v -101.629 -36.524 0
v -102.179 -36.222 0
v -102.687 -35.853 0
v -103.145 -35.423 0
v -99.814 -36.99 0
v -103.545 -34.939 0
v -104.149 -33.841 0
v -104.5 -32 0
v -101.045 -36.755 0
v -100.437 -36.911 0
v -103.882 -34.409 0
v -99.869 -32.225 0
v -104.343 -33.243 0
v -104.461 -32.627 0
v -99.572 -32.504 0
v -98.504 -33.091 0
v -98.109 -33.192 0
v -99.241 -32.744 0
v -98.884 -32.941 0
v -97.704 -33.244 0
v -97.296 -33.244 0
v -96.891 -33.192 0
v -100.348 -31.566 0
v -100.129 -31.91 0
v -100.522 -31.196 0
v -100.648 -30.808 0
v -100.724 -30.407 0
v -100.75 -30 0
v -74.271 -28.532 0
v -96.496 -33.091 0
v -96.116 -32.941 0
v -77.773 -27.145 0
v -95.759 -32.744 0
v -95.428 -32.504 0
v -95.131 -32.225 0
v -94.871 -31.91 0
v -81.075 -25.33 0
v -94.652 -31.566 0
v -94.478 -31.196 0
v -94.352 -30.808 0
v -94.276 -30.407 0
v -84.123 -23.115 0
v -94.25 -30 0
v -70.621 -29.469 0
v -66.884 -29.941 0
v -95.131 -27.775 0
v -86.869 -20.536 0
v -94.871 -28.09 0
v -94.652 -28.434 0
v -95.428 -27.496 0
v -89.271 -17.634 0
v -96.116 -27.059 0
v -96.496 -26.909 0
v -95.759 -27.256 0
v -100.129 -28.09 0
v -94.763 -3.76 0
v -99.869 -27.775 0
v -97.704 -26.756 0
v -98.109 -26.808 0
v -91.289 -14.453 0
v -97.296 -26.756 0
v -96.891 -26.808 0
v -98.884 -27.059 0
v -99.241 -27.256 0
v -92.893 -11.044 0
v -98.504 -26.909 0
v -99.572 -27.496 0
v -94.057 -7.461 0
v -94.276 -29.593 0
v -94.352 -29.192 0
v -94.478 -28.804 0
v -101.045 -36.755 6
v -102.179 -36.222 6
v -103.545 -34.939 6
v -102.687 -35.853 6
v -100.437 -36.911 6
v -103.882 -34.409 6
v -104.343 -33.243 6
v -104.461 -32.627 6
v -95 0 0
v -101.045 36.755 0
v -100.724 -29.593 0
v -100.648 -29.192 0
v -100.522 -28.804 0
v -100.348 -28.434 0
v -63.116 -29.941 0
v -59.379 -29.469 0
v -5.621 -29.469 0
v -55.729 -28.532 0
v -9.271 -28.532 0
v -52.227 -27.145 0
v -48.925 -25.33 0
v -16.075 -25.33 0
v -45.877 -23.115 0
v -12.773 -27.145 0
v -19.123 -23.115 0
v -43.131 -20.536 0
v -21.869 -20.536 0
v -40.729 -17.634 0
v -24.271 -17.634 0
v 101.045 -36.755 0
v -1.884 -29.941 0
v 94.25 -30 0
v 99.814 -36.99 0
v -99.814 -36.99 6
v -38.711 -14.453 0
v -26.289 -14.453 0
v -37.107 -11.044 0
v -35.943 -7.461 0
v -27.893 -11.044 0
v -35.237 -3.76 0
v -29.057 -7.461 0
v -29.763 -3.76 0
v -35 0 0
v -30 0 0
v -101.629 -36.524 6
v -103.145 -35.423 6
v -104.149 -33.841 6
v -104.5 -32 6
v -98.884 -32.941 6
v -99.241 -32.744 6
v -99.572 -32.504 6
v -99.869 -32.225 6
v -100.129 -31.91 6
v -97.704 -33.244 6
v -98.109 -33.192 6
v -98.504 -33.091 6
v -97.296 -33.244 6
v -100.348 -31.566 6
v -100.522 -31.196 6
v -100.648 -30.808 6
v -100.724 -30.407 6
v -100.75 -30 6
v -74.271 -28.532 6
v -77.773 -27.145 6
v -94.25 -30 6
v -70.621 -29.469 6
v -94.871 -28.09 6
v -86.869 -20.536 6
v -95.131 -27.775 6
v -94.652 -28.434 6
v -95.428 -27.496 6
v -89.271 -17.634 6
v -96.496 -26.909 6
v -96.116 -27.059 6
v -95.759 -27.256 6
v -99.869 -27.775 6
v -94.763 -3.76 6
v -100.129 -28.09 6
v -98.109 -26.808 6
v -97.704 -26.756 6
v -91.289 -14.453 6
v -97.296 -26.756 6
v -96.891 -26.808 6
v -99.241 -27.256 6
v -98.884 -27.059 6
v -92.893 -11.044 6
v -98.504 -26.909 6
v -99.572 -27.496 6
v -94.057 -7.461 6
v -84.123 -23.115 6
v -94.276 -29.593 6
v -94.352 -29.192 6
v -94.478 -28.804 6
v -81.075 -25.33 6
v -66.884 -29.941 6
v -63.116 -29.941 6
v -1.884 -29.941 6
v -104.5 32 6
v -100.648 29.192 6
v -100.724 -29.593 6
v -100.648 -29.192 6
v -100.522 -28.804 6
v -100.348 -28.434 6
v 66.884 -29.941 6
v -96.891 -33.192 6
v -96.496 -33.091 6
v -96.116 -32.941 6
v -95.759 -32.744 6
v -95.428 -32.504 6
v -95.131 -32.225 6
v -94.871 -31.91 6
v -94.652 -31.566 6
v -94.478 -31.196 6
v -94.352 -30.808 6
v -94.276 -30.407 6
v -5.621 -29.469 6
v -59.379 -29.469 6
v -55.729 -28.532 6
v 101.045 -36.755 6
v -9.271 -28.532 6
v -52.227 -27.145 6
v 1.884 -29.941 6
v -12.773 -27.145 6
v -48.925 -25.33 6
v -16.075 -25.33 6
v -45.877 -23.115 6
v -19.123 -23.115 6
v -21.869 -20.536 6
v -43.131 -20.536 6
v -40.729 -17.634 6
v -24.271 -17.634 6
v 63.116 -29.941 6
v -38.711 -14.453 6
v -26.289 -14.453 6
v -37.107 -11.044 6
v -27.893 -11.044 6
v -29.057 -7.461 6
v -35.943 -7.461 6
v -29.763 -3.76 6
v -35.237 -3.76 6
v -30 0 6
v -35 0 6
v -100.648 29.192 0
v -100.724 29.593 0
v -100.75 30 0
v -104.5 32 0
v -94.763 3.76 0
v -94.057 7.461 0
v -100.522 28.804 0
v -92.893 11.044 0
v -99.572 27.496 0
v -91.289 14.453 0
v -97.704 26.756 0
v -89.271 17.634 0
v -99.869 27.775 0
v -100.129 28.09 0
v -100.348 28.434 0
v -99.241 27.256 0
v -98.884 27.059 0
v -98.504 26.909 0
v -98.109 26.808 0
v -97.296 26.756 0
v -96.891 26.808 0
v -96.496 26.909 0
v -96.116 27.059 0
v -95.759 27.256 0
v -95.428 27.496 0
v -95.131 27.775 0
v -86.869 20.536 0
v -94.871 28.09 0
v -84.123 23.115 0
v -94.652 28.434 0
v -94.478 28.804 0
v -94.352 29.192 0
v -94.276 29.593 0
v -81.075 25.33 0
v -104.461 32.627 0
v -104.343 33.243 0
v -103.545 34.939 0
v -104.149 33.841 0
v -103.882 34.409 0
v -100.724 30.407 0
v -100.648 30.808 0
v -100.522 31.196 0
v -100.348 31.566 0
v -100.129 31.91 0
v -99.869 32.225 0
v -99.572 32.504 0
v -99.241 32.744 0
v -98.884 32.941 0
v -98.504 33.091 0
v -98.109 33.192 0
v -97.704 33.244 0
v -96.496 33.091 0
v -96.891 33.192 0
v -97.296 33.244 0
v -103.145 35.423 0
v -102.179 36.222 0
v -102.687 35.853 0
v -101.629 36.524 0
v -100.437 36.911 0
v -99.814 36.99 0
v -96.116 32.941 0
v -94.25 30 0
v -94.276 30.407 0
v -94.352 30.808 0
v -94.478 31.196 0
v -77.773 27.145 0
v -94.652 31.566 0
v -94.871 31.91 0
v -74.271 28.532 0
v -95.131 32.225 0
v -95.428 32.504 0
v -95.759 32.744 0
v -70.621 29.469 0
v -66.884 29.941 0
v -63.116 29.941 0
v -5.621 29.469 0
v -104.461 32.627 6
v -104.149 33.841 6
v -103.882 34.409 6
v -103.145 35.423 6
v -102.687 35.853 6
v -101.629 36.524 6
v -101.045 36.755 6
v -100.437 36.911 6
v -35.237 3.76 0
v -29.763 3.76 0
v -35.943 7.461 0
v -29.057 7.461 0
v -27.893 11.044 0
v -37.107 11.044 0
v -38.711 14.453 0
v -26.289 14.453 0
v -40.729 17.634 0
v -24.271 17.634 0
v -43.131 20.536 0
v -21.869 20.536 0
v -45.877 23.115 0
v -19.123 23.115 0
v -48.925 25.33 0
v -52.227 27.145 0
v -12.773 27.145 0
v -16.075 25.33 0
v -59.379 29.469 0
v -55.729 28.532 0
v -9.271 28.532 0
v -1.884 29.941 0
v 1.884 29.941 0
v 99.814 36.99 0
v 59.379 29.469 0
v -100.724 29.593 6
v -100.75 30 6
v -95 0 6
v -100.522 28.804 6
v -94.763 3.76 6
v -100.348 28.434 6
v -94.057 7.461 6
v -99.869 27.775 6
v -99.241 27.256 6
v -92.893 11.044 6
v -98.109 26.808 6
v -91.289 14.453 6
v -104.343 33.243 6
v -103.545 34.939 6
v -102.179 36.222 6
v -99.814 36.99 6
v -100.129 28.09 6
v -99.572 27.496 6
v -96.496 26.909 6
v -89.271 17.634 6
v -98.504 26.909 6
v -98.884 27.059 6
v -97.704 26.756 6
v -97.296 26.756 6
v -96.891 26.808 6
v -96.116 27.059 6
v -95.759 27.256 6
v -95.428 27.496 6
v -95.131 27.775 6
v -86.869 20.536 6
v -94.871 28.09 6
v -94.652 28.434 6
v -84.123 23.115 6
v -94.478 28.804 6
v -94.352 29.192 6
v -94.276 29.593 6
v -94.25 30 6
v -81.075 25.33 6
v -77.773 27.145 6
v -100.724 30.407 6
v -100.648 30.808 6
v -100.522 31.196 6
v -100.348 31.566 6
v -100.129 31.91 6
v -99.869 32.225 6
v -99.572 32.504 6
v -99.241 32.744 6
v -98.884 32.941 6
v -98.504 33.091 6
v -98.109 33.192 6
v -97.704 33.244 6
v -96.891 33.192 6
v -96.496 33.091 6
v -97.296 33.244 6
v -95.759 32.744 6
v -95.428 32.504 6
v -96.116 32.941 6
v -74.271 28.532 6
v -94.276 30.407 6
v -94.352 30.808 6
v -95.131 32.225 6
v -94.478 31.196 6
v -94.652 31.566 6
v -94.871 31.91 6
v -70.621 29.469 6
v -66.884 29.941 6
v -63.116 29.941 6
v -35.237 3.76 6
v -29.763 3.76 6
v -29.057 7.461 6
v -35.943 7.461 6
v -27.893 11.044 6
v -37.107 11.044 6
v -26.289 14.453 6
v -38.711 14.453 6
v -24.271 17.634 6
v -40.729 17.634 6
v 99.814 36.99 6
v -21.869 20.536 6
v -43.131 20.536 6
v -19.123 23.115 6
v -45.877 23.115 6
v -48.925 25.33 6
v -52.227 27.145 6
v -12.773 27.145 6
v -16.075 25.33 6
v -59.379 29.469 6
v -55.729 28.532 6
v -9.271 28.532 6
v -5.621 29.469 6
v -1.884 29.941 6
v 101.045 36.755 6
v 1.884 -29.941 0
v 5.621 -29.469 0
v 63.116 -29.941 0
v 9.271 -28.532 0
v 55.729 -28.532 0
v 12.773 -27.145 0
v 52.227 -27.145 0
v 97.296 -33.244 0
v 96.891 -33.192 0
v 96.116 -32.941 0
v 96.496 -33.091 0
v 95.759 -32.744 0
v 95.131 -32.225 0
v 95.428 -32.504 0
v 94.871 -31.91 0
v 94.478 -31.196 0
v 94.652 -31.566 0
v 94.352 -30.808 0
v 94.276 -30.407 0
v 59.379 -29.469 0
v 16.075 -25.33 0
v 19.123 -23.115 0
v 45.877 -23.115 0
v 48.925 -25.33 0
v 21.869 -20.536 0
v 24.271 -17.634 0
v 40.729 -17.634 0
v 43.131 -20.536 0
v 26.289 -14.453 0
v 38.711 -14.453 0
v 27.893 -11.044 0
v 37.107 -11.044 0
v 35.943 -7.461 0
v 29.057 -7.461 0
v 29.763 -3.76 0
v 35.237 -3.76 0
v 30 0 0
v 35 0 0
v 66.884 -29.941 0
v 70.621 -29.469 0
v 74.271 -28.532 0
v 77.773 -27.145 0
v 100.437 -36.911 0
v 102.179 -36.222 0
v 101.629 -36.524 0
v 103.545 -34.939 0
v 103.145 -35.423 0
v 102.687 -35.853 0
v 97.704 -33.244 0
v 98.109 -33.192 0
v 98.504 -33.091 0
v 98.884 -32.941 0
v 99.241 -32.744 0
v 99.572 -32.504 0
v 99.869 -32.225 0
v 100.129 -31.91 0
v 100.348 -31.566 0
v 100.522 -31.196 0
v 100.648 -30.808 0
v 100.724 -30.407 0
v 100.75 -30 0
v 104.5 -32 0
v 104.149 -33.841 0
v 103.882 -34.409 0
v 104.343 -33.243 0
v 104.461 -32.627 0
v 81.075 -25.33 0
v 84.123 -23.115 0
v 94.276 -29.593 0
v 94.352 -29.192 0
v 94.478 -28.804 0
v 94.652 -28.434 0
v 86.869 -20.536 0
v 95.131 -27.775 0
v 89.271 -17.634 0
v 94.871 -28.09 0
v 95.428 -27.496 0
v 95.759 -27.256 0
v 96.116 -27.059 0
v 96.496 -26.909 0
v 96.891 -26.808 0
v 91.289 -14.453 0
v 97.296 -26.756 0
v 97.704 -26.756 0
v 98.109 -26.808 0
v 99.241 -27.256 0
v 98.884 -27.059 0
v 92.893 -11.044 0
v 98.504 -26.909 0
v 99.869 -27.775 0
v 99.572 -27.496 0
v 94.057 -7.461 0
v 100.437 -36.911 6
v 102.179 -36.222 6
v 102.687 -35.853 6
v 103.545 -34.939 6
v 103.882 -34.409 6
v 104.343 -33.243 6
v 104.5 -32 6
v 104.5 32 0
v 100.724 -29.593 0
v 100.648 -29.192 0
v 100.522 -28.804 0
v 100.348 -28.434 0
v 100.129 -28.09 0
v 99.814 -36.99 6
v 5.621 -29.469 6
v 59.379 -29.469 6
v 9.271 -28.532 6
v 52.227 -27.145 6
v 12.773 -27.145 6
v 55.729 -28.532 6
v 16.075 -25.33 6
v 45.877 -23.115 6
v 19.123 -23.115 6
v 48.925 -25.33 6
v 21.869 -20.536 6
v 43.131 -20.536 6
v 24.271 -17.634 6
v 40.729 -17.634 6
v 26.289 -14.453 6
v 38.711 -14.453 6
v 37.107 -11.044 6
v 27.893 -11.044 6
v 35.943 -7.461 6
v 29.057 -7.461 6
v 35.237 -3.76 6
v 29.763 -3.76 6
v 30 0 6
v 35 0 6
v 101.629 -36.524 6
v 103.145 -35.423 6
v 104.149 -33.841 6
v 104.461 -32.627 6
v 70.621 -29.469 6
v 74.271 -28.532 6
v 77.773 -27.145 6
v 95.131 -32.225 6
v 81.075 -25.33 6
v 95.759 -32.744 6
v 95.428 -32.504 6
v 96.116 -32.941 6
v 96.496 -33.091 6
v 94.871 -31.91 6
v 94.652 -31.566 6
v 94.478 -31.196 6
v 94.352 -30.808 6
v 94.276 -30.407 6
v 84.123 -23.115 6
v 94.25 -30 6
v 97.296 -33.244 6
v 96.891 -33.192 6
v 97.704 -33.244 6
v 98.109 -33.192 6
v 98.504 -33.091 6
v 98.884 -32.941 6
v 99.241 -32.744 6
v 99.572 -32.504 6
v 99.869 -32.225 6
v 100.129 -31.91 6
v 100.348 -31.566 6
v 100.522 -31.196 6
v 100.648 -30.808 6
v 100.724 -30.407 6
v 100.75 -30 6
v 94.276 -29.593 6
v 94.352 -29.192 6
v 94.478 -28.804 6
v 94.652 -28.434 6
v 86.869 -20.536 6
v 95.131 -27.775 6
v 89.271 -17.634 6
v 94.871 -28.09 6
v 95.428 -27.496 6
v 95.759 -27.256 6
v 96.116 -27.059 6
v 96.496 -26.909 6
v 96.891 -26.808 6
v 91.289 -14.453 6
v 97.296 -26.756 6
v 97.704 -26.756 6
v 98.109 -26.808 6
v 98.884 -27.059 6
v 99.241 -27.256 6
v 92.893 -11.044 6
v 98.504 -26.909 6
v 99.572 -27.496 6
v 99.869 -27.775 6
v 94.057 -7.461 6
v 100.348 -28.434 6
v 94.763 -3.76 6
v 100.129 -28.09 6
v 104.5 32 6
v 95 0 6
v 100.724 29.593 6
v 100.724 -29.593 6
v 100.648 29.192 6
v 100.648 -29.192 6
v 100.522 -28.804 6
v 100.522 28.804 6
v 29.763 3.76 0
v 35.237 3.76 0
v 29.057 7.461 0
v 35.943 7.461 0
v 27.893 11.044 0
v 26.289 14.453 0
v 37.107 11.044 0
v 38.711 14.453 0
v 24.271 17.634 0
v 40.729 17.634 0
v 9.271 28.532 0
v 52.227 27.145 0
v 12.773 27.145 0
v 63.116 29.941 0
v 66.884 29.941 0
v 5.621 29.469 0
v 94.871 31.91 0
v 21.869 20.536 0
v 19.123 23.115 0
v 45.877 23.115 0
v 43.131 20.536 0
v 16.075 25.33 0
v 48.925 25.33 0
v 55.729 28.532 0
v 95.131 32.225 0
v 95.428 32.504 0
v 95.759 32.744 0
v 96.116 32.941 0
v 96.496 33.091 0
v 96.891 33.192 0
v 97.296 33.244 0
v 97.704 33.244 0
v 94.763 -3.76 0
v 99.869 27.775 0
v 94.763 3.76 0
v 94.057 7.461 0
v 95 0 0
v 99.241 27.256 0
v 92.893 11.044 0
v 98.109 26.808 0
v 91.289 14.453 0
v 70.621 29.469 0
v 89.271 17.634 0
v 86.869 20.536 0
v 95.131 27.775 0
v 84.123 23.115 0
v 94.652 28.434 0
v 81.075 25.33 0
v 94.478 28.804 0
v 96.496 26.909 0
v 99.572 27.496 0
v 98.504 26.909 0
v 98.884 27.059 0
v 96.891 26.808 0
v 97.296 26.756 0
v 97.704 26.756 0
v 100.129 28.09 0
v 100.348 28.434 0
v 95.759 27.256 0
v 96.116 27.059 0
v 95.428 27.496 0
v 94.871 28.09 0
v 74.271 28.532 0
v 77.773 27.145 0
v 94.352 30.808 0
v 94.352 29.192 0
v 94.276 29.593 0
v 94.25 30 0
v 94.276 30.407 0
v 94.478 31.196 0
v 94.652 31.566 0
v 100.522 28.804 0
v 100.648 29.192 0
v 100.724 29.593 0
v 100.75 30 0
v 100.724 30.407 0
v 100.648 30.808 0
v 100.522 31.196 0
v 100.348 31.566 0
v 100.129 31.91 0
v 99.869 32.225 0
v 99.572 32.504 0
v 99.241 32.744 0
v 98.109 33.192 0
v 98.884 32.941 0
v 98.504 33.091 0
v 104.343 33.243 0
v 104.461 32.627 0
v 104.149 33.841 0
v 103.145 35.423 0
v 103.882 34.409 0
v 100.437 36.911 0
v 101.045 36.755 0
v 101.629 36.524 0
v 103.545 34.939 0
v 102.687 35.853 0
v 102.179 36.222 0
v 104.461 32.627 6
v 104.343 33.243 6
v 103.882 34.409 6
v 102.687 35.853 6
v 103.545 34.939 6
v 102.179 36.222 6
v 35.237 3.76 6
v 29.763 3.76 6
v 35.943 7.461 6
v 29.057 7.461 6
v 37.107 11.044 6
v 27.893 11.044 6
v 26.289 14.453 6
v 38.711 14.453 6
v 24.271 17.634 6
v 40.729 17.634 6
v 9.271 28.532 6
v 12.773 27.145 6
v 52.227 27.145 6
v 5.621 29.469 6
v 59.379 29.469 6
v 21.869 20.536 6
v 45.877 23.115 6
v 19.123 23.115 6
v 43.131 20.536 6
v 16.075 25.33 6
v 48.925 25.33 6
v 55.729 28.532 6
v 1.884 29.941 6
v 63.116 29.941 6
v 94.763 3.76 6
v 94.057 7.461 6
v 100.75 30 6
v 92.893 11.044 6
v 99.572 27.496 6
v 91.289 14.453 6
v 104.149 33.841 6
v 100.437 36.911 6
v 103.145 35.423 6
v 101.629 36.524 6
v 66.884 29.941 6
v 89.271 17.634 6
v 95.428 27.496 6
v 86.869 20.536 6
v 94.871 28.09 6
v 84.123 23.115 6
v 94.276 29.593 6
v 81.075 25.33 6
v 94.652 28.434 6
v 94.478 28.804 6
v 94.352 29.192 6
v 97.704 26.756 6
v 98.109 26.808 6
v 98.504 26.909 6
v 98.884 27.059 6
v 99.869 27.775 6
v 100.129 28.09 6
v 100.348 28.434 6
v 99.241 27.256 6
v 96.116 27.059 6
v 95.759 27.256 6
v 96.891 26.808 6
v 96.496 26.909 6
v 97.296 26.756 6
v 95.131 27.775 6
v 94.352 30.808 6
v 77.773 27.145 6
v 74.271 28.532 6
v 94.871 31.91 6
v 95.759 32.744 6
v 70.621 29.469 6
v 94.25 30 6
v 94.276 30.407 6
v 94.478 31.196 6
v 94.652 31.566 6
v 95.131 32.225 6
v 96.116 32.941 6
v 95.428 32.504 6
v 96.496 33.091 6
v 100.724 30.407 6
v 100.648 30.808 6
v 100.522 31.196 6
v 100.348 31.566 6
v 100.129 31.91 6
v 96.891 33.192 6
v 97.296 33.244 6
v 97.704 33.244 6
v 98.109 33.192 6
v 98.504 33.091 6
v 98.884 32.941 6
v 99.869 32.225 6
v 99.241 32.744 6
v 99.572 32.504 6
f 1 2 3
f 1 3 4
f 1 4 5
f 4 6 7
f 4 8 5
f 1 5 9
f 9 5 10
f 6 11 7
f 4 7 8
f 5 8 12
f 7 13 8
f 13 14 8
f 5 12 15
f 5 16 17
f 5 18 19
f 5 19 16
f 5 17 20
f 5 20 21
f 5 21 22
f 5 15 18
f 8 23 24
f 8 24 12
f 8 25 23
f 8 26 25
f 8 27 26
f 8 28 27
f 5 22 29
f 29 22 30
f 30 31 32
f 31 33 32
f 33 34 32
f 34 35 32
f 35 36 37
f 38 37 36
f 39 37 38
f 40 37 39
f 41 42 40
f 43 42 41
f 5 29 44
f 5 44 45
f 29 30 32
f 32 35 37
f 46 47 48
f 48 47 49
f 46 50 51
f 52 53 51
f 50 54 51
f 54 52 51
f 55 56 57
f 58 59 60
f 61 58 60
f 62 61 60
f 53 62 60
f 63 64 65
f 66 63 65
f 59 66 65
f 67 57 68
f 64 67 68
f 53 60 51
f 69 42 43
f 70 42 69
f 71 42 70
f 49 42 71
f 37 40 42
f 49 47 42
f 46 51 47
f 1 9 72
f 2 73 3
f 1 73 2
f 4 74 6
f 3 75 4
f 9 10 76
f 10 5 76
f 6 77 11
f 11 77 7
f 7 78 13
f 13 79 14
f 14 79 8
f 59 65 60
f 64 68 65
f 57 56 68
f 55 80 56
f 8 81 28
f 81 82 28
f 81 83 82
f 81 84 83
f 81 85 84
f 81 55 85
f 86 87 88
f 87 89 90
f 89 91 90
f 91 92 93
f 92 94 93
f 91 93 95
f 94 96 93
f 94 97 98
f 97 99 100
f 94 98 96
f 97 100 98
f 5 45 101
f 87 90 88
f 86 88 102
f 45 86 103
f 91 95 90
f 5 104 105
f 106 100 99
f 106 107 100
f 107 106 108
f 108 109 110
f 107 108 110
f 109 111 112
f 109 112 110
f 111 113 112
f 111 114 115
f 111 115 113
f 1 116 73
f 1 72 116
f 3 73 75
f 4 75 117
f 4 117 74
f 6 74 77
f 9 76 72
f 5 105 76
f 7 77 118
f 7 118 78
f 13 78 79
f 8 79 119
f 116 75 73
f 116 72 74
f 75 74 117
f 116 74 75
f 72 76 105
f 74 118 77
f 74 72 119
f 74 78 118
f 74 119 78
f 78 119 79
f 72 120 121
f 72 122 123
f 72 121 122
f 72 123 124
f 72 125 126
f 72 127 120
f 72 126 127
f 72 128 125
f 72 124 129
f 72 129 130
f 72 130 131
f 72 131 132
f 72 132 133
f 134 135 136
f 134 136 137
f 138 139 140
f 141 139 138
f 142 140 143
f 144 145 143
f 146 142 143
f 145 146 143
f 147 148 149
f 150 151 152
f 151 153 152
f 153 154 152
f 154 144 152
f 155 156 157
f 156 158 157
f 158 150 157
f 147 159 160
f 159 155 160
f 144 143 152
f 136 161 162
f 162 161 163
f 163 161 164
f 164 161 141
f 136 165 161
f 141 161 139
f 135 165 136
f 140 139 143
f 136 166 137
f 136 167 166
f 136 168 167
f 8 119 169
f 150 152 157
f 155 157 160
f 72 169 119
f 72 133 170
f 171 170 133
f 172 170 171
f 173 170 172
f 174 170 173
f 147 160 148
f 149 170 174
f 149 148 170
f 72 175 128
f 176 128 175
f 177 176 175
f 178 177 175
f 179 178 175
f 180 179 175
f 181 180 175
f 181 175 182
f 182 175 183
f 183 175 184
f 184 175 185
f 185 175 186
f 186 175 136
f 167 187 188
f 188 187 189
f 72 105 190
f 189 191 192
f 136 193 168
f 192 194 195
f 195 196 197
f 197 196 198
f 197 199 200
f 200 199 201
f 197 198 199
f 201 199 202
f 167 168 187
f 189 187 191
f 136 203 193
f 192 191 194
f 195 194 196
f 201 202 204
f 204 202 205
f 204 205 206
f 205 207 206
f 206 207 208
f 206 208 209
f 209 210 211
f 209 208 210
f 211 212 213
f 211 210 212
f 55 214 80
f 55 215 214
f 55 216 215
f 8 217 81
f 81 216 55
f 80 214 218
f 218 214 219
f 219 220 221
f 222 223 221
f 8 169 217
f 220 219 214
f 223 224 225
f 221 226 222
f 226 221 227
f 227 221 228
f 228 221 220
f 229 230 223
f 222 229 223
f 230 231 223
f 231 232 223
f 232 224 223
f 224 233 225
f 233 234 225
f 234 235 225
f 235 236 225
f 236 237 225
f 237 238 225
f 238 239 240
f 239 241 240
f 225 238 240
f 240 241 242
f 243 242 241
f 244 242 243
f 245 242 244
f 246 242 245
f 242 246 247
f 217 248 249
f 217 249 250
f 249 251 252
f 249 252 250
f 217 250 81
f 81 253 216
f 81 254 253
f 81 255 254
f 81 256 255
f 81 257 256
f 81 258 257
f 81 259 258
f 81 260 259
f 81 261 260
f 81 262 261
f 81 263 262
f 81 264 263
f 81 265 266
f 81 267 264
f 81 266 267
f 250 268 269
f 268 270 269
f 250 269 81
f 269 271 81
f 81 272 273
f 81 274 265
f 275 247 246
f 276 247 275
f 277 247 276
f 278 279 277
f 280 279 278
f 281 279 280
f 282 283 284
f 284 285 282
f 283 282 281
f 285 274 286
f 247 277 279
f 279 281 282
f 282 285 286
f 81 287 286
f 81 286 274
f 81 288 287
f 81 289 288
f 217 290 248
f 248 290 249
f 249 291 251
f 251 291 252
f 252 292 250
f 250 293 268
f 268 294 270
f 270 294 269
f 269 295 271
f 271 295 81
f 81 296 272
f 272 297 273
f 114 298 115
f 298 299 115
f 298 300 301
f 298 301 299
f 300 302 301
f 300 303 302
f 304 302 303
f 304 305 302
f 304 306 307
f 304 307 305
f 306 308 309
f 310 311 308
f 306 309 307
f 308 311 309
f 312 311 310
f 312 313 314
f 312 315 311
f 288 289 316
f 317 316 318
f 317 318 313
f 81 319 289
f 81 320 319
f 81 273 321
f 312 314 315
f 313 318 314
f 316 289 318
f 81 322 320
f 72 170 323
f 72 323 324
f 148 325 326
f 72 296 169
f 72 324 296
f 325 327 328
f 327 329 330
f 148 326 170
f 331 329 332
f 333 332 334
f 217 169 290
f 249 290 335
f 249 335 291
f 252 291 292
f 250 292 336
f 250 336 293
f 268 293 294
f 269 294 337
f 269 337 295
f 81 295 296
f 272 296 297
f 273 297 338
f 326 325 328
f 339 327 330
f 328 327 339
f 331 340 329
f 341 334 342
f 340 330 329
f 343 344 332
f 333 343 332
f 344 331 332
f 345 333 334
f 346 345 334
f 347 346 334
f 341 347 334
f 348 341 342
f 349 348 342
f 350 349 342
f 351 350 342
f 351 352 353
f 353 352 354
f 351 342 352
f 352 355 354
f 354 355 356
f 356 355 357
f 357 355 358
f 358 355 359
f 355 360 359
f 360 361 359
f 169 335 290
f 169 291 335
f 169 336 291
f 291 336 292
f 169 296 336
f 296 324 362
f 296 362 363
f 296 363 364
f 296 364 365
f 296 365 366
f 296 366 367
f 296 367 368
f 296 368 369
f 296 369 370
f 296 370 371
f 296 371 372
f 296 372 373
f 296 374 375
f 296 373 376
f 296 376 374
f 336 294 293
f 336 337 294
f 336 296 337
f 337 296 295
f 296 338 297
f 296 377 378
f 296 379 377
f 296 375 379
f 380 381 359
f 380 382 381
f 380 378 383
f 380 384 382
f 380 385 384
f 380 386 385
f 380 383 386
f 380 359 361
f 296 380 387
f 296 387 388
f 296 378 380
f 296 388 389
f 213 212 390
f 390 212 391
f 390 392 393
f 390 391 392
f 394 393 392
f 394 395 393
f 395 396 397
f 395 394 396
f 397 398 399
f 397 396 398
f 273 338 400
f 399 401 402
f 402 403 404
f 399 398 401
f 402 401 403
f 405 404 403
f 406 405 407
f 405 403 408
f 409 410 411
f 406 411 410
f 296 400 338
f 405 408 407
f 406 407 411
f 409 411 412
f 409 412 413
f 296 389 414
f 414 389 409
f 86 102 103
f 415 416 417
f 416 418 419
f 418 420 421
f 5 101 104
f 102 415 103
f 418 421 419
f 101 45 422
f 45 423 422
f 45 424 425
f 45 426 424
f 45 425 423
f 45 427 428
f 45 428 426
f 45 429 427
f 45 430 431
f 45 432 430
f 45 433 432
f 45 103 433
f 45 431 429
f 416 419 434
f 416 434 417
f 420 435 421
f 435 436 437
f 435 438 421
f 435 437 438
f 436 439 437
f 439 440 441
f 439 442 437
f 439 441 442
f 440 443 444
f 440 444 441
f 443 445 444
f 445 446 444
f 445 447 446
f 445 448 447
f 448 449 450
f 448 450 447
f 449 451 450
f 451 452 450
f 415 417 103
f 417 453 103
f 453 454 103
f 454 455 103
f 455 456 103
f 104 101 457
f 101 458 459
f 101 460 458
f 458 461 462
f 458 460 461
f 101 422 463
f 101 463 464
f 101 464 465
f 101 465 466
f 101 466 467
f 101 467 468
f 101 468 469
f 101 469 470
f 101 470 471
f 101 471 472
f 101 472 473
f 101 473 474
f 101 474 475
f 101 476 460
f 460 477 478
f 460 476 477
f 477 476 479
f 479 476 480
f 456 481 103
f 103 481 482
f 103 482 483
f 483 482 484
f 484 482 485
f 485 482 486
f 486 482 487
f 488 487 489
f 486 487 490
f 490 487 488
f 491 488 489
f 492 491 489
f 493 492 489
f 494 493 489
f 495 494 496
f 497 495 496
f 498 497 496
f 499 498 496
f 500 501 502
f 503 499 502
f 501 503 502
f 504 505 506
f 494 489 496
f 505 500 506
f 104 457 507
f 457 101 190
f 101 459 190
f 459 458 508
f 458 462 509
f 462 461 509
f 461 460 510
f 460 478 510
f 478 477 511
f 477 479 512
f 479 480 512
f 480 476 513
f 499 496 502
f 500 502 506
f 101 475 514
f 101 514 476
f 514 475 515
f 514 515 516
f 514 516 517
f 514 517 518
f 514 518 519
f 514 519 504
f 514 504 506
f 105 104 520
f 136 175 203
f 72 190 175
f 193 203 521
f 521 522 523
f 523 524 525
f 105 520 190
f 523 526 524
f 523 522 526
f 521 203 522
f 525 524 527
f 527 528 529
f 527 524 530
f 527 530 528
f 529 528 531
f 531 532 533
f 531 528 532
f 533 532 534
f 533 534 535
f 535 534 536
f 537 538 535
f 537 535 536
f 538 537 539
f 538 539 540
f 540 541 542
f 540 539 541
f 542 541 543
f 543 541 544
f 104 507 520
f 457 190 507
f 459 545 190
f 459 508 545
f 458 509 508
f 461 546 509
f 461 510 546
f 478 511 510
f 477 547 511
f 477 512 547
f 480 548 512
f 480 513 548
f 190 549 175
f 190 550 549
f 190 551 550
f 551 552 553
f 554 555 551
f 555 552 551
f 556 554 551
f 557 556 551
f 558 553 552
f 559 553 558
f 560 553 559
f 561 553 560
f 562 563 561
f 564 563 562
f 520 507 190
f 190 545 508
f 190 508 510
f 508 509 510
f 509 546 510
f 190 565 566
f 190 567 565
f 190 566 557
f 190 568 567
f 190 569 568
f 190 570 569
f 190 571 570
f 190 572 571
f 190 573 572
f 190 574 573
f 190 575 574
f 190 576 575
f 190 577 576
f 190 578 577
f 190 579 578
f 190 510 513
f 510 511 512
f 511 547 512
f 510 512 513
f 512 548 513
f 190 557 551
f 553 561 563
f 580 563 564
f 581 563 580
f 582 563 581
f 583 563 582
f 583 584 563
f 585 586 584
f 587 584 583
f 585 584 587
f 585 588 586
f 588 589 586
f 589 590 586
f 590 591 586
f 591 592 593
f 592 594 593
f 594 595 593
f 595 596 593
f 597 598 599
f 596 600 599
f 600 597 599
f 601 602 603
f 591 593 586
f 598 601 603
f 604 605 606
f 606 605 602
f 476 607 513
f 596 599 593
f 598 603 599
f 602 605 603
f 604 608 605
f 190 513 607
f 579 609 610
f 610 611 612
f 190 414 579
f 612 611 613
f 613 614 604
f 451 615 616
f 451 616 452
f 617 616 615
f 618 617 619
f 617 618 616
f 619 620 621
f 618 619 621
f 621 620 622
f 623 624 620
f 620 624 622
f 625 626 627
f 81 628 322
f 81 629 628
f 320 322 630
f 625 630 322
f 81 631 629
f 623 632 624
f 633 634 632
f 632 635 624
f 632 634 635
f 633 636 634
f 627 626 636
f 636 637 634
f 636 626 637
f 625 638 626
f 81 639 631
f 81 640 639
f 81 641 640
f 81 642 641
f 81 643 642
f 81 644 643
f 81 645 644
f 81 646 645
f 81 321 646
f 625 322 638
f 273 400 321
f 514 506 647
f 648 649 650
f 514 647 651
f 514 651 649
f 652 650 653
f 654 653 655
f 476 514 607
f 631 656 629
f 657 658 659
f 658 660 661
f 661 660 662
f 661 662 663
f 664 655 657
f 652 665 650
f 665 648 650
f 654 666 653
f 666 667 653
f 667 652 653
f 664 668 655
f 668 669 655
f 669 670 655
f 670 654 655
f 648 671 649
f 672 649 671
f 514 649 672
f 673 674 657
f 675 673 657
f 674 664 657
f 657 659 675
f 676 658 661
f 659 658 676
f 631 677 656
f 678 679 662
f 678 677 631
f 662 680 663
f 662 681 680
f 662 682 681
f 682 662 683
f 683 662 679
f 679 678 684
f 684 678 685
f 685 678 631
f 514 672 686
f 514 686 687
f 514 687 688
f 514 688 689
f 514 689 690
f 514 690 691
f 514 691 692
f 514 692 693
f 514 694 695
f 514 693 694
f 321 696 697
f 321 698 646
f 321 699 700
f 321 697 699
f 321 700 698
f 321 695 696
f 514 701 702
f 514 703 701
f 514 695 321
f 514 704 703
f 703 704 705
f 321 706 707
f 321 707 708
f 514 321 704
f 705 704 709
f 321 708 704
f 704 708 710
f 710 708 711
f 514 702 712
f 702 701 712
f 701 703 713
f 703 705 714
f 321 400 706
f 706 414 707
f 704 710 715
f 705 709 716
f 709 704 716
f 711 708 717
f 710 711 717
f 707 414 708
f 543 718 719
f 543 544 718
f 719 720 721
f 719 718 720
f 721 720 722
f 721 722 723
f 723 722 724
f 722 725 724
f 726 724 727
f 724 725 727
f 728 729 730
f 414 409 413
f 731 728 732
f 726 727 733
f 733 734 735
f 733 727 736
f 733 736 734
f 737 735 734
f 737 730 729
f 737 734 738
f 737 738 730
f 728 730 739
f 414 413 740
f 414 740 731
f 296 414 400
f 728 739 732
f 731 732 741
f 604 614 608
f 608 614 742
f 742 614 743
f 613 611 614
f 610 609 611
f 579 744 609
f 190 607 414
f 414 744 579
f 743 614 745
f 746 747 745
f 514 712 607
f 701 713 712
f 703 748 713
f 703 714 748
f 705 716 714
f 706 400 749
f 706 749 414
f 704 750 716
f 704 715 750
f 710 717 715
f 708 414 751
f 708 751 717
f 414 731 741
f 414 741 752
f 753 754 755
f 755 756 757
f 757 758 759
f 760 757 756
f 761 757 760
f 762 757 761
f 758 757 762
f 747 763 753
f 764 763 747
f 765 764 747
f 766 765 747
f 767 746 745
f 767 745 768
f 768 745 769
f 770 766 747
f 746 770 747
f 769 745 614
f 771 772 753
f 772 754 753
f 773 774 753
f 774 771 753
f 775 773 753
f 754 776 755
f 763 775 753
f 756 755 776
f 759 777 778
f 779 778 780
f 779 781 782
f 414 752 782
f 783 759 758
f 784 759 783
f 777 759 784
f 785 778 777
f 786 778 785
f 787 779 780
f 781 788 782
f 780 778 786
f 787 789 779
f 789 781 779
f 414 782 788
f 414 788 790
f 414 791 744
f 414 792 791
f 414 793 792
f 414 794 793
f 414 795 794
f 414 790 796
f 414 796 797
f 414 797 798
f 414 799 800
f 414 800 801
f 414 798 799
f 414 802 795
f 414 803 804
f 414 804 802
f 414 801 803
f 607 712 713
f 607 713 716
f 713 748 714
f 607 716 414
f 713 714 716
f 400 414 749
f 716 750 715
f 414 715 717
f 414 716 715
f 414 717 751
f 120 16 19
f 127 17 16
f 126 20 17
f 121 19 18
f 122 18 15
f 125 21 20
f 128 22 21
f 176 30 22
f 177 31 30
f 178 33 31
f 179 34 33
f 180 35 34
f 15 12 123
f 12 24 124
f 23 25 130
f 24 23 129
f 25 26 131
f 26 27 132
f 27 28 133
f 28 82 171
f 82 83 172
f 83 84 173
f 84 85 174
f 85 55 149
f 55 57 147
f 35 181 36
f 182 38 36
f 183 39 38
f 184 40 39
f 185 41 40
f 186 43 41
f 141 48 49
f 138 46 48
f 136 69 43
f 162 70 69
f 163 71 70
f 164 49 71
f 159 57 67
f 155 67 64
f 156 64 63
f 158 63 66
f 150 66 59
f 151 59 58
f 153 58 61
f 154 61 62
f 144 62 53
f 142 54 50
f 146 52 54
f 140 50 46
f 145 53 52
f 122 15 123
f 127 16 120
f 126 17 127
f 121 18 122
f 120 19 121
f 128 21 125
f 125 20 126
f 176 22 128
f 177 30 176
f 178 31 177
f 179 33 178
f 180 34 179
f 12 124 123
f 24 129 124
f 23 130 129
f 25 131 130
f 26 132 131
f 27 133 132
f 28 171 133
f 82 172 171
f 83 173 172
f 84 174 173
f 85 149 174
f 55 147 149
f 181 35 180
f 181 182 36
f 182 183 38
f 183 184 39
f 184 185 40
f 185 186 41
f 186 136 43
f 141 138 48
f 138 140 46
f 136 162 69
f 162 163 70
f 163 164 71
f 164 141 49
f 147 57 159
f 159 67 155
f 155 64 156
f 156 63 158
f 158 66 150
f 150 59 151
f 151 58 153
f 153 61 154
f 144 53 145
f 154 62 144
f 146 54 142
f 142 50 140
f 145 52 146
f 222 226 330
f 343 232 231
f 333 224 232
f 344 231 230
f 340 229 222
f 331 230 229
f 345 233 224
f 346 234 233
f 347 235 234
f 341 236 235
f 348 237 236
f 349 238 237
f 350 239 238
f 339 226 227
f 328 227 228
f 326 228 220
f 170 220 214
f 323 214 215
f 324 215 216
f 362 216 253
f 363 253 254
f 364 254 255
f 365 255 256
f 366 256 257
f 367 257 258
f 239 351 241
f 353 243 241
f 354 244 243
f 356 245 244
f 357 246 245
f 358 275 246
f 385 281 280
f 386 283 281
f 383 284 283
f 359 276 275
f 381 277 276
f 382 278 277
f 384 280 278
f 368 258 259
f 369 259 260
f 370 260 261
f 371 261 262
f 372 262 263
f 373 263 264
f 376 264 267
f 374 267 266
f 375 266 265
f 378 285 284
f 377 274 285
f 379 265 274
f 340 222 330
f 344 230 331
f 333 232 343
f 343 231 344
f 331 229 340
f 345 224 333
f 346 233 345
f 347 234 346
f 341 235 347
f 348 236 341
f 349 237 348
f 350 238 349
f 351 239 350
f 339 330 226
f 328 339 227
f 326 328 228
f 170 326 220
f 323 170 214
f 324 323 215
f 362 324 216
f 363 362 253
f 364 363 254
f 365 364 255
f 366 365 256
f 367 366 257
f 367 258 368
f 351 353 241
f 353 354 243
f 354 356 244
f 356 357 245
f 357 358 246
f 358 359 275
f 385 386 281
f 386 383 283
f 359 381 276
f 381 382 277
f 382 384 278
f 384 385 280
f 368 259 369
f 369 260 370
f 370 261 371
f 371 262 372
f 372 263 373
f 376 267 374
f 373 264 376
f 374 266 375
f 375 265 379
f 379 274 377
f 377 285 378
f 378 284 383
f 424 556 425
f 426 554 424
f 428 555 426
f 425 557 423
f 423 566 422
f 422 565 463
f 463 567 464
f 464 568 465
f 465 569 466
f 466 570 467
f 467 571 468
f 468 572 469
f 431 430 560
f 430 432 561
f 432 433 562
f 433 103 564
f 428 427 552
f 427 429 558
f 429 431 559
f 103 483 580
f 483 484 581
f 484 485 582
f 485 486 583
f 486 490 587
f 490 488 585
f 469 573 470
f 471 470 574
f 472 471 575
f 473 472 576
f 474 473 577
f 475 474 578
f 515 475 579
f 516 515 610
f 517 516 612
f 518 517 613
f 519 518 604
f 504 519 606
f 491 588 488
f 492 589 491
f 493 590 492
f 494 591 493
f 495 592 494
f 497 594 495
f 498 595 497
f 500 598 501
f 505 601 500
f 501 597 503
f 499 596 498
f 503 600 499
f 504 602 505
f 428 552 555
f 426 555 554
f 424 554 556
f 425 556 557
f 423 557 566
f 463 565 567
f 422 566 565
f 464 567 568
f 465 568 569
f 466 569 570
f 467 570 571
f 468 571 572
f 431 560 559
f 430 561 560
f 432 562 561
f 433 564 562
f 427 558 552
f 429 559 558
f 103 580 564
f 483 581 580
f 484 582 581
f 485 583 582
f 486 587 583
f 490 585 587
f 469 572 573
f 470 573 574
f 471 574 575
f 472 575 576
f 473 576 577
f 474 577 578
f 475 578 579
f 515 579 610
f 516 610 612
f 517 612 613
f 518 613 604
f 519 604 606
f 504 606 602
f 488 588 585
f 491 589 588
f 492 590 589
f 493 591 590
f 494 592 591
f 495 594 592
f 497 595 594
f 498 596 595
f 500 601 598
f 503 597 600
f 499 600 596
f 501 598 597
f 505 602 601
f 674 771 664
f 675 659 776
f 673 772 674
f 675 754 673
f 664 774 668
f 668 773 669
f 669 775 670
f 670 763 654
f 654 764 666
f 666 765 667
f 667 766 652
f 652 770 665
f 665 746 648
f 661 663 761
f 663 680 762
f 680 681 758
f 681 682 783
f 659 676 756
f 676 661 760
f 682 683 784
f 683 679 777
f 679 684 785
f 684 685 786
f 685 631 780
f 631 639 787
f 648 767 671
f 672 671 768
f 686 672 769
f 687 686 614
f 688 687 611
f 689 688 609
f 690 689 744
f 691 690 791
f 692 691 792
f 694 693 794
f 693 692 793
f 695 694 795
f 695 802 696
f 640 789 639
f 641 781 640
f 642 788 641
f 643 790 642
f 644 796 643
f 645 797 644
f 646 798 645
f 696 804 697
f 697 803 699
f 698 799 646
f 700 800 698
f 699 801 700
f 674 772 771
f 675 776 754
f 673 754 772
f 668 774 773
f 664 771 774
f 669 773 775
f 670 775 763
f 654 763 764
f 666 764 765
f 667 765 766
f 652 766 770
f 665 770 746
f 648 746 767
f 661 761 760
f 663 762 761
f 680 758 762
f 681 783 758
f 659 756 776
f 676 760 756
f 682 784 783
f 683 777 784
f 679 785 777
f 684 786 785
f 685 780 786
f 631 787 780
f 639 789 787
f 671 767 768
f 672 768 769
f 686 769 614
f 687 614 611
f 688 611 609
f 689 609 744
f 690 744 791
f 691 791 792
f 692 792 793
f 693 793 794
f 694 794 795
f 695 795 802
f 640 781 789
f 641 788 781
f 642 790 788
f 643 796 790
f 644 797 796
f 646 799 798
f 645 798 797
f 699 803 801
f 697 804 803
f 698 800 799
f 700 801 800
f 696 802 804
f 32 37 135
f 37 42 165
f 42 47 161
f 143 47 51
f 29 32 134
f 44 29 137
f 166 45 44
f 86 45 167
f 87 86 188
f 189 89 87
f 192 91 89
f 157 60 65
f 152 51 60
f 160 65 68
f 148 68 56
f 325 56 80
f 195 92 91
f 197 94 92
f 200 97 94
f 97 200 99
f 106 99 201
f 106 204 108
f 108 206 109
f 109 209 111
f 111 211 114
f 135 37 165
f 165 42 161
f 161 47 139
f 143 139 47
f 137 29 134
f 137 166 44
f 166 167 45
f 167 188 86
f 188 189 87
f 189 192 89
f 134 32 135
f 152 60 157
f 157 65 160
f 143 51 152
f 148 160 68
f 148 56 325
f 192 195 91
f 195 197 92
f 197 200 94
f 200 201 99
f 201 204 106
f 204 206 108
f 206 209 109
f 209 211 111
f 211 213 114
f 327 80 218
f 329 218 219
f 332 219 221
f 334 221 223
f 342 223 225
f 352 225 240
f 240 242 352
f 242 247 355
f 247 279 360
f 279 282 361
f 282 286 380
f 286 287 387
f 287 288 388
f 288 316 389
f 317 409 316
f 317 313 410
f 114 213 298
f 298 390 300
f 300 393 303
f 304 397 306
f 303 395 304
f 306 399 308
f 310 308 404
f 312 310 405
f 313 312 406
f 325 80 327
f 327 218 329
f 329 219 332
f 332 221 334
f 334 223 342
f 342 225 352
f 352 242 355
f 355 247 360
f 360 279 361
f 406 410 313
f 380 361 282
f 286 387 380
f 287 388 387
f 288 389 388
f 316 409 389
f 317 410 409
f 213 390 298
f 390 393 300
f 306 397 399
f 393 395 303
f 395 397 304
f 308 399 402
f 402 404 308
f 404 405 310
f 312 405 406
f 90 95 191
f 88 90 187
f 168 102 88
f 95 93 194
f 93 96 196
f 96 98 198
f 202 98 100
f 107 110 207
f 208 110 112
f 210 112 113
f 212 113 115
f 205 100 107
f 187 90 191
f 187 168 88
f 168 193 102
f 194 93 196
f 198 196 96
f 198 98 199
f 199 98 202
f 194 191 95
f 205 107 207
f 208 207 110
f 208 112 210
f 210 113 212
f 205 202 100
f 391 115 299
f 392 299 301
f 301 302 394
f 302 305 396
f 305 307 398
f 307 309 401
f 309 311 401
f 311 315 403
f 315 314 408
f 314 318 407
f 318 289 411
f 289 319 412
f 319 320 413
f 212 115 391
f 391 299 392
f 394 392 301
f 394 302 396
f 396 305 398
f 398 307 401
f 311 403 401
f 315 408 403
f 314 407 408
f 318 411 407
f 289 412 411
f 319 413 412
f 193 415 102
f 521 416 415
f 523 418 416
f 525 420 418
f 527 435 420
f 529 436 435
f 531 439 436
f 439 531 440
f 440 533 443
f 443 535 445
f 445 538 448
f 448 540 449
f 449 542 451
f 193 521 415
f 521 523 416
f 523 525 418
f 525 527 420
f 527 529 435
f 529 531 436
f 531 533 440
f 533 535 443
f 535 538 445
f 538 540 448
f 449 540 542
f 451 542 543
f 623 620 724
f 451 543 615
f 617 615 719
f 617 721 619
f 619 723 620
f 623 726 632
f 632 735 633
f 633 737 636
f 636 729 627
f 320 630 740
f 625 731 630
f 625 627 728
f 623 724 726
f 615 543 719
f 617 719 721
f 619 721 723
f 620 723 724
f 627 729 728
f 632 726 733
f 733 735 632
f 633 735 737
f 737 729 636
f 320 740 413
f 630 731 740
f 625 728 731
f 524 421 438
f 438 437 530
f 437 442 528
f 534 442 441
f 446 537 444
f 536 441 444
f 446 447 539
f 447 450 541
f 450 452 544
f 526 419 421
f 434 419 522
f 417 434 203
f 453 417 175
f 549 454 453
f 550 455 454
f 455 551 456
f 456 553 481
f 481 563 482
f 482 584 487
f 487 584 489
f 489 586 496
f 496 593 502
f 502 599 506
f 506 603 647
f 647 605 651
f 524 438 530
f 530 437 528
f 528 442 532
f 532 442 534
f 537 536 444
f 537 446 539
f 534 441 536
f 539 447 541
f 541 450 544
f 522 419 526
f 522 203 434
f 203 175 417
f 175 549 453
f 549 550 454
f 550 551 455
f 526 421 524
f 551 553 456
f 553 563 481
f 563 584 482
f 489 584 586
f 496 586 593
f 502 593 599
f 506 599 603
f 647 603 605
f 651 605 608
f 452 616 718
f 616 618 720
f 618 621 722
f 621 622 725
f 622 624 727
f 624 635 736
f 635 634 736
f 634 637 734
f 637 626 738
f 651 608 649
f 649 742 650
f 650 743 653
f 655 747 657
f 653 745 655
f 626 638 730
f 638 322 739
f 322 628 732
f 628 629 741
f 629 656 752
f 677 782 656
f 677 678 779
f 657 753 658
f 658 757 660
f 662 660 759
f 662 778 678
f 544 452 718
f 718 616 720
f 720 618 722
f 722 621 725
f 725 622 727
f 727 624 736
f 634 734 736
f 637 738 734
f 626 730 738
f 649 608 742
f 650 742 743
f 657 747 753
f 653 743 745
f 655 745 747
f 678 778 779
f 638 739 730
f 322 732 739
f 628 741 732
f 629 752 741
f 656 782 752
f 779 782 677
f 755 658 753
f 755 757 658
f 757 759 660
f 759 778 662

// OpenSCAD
$fn = 50;

difference() {
	union() {
		hull() {
			translate(v = [-99.5, 32.0, 0]) {
				cylinder(h = 6, r = 5);
			}
			translate(v = [99.5, 32.0, 0]) {
				cylinder(h = 6, r = 5);
			}
			translate(v = [-99.5, -32.0, 0]) {
				cylinder(h = 6, r = 5);
			}
			translate(v = [99.5, -32.0, 0]) {
				cylinder(h = 6, r = 5);
			}
		}
	}
	union() {
		translate(v = [-97.5, -30.0, -100.0]) {
			cylinder(h = 200, r = 3.25);
		}
		translate(v = [-97.5, 30.0, -100.0]) {
			cylinder(h = 200, r = 3.25);
		}
		translate(v = [97.5, -30.0, -100.0]) {
			cylinder(h = 200, r = 3.25);
		}
		translate(v = [97.5, 30.0, -100.0]) {
			cylinder(h = 200, r = 3.25);
		}
		translate(v = [-97.5, -30.0, -100.0]) {
			cylinder(h = 200, r = 1.8);
		}
		translate(v = [-97.5, 30.0, -100.0]) {
			cylinder(h = 200, r = 1.8);
		}
		translate(v = [97.5, -30.0, -100.0]) {
			cylinder(h = 200, r = 1.8);
		}
		translate(v = [97.5, 30.0, -100.0]) {
			cylinder(h = 200, r = 1.8);
		}
		translate(v = [-65.0, 0, 0.0]) {
			cylinder(h = 6, r = 30.0);
		}
		cylinder(h = 6, r = 30.0);
		translate(v = [65.0, 0, 0.0]) {
			cylinder(h = 6, r = 30.0);
		}
	}
}
